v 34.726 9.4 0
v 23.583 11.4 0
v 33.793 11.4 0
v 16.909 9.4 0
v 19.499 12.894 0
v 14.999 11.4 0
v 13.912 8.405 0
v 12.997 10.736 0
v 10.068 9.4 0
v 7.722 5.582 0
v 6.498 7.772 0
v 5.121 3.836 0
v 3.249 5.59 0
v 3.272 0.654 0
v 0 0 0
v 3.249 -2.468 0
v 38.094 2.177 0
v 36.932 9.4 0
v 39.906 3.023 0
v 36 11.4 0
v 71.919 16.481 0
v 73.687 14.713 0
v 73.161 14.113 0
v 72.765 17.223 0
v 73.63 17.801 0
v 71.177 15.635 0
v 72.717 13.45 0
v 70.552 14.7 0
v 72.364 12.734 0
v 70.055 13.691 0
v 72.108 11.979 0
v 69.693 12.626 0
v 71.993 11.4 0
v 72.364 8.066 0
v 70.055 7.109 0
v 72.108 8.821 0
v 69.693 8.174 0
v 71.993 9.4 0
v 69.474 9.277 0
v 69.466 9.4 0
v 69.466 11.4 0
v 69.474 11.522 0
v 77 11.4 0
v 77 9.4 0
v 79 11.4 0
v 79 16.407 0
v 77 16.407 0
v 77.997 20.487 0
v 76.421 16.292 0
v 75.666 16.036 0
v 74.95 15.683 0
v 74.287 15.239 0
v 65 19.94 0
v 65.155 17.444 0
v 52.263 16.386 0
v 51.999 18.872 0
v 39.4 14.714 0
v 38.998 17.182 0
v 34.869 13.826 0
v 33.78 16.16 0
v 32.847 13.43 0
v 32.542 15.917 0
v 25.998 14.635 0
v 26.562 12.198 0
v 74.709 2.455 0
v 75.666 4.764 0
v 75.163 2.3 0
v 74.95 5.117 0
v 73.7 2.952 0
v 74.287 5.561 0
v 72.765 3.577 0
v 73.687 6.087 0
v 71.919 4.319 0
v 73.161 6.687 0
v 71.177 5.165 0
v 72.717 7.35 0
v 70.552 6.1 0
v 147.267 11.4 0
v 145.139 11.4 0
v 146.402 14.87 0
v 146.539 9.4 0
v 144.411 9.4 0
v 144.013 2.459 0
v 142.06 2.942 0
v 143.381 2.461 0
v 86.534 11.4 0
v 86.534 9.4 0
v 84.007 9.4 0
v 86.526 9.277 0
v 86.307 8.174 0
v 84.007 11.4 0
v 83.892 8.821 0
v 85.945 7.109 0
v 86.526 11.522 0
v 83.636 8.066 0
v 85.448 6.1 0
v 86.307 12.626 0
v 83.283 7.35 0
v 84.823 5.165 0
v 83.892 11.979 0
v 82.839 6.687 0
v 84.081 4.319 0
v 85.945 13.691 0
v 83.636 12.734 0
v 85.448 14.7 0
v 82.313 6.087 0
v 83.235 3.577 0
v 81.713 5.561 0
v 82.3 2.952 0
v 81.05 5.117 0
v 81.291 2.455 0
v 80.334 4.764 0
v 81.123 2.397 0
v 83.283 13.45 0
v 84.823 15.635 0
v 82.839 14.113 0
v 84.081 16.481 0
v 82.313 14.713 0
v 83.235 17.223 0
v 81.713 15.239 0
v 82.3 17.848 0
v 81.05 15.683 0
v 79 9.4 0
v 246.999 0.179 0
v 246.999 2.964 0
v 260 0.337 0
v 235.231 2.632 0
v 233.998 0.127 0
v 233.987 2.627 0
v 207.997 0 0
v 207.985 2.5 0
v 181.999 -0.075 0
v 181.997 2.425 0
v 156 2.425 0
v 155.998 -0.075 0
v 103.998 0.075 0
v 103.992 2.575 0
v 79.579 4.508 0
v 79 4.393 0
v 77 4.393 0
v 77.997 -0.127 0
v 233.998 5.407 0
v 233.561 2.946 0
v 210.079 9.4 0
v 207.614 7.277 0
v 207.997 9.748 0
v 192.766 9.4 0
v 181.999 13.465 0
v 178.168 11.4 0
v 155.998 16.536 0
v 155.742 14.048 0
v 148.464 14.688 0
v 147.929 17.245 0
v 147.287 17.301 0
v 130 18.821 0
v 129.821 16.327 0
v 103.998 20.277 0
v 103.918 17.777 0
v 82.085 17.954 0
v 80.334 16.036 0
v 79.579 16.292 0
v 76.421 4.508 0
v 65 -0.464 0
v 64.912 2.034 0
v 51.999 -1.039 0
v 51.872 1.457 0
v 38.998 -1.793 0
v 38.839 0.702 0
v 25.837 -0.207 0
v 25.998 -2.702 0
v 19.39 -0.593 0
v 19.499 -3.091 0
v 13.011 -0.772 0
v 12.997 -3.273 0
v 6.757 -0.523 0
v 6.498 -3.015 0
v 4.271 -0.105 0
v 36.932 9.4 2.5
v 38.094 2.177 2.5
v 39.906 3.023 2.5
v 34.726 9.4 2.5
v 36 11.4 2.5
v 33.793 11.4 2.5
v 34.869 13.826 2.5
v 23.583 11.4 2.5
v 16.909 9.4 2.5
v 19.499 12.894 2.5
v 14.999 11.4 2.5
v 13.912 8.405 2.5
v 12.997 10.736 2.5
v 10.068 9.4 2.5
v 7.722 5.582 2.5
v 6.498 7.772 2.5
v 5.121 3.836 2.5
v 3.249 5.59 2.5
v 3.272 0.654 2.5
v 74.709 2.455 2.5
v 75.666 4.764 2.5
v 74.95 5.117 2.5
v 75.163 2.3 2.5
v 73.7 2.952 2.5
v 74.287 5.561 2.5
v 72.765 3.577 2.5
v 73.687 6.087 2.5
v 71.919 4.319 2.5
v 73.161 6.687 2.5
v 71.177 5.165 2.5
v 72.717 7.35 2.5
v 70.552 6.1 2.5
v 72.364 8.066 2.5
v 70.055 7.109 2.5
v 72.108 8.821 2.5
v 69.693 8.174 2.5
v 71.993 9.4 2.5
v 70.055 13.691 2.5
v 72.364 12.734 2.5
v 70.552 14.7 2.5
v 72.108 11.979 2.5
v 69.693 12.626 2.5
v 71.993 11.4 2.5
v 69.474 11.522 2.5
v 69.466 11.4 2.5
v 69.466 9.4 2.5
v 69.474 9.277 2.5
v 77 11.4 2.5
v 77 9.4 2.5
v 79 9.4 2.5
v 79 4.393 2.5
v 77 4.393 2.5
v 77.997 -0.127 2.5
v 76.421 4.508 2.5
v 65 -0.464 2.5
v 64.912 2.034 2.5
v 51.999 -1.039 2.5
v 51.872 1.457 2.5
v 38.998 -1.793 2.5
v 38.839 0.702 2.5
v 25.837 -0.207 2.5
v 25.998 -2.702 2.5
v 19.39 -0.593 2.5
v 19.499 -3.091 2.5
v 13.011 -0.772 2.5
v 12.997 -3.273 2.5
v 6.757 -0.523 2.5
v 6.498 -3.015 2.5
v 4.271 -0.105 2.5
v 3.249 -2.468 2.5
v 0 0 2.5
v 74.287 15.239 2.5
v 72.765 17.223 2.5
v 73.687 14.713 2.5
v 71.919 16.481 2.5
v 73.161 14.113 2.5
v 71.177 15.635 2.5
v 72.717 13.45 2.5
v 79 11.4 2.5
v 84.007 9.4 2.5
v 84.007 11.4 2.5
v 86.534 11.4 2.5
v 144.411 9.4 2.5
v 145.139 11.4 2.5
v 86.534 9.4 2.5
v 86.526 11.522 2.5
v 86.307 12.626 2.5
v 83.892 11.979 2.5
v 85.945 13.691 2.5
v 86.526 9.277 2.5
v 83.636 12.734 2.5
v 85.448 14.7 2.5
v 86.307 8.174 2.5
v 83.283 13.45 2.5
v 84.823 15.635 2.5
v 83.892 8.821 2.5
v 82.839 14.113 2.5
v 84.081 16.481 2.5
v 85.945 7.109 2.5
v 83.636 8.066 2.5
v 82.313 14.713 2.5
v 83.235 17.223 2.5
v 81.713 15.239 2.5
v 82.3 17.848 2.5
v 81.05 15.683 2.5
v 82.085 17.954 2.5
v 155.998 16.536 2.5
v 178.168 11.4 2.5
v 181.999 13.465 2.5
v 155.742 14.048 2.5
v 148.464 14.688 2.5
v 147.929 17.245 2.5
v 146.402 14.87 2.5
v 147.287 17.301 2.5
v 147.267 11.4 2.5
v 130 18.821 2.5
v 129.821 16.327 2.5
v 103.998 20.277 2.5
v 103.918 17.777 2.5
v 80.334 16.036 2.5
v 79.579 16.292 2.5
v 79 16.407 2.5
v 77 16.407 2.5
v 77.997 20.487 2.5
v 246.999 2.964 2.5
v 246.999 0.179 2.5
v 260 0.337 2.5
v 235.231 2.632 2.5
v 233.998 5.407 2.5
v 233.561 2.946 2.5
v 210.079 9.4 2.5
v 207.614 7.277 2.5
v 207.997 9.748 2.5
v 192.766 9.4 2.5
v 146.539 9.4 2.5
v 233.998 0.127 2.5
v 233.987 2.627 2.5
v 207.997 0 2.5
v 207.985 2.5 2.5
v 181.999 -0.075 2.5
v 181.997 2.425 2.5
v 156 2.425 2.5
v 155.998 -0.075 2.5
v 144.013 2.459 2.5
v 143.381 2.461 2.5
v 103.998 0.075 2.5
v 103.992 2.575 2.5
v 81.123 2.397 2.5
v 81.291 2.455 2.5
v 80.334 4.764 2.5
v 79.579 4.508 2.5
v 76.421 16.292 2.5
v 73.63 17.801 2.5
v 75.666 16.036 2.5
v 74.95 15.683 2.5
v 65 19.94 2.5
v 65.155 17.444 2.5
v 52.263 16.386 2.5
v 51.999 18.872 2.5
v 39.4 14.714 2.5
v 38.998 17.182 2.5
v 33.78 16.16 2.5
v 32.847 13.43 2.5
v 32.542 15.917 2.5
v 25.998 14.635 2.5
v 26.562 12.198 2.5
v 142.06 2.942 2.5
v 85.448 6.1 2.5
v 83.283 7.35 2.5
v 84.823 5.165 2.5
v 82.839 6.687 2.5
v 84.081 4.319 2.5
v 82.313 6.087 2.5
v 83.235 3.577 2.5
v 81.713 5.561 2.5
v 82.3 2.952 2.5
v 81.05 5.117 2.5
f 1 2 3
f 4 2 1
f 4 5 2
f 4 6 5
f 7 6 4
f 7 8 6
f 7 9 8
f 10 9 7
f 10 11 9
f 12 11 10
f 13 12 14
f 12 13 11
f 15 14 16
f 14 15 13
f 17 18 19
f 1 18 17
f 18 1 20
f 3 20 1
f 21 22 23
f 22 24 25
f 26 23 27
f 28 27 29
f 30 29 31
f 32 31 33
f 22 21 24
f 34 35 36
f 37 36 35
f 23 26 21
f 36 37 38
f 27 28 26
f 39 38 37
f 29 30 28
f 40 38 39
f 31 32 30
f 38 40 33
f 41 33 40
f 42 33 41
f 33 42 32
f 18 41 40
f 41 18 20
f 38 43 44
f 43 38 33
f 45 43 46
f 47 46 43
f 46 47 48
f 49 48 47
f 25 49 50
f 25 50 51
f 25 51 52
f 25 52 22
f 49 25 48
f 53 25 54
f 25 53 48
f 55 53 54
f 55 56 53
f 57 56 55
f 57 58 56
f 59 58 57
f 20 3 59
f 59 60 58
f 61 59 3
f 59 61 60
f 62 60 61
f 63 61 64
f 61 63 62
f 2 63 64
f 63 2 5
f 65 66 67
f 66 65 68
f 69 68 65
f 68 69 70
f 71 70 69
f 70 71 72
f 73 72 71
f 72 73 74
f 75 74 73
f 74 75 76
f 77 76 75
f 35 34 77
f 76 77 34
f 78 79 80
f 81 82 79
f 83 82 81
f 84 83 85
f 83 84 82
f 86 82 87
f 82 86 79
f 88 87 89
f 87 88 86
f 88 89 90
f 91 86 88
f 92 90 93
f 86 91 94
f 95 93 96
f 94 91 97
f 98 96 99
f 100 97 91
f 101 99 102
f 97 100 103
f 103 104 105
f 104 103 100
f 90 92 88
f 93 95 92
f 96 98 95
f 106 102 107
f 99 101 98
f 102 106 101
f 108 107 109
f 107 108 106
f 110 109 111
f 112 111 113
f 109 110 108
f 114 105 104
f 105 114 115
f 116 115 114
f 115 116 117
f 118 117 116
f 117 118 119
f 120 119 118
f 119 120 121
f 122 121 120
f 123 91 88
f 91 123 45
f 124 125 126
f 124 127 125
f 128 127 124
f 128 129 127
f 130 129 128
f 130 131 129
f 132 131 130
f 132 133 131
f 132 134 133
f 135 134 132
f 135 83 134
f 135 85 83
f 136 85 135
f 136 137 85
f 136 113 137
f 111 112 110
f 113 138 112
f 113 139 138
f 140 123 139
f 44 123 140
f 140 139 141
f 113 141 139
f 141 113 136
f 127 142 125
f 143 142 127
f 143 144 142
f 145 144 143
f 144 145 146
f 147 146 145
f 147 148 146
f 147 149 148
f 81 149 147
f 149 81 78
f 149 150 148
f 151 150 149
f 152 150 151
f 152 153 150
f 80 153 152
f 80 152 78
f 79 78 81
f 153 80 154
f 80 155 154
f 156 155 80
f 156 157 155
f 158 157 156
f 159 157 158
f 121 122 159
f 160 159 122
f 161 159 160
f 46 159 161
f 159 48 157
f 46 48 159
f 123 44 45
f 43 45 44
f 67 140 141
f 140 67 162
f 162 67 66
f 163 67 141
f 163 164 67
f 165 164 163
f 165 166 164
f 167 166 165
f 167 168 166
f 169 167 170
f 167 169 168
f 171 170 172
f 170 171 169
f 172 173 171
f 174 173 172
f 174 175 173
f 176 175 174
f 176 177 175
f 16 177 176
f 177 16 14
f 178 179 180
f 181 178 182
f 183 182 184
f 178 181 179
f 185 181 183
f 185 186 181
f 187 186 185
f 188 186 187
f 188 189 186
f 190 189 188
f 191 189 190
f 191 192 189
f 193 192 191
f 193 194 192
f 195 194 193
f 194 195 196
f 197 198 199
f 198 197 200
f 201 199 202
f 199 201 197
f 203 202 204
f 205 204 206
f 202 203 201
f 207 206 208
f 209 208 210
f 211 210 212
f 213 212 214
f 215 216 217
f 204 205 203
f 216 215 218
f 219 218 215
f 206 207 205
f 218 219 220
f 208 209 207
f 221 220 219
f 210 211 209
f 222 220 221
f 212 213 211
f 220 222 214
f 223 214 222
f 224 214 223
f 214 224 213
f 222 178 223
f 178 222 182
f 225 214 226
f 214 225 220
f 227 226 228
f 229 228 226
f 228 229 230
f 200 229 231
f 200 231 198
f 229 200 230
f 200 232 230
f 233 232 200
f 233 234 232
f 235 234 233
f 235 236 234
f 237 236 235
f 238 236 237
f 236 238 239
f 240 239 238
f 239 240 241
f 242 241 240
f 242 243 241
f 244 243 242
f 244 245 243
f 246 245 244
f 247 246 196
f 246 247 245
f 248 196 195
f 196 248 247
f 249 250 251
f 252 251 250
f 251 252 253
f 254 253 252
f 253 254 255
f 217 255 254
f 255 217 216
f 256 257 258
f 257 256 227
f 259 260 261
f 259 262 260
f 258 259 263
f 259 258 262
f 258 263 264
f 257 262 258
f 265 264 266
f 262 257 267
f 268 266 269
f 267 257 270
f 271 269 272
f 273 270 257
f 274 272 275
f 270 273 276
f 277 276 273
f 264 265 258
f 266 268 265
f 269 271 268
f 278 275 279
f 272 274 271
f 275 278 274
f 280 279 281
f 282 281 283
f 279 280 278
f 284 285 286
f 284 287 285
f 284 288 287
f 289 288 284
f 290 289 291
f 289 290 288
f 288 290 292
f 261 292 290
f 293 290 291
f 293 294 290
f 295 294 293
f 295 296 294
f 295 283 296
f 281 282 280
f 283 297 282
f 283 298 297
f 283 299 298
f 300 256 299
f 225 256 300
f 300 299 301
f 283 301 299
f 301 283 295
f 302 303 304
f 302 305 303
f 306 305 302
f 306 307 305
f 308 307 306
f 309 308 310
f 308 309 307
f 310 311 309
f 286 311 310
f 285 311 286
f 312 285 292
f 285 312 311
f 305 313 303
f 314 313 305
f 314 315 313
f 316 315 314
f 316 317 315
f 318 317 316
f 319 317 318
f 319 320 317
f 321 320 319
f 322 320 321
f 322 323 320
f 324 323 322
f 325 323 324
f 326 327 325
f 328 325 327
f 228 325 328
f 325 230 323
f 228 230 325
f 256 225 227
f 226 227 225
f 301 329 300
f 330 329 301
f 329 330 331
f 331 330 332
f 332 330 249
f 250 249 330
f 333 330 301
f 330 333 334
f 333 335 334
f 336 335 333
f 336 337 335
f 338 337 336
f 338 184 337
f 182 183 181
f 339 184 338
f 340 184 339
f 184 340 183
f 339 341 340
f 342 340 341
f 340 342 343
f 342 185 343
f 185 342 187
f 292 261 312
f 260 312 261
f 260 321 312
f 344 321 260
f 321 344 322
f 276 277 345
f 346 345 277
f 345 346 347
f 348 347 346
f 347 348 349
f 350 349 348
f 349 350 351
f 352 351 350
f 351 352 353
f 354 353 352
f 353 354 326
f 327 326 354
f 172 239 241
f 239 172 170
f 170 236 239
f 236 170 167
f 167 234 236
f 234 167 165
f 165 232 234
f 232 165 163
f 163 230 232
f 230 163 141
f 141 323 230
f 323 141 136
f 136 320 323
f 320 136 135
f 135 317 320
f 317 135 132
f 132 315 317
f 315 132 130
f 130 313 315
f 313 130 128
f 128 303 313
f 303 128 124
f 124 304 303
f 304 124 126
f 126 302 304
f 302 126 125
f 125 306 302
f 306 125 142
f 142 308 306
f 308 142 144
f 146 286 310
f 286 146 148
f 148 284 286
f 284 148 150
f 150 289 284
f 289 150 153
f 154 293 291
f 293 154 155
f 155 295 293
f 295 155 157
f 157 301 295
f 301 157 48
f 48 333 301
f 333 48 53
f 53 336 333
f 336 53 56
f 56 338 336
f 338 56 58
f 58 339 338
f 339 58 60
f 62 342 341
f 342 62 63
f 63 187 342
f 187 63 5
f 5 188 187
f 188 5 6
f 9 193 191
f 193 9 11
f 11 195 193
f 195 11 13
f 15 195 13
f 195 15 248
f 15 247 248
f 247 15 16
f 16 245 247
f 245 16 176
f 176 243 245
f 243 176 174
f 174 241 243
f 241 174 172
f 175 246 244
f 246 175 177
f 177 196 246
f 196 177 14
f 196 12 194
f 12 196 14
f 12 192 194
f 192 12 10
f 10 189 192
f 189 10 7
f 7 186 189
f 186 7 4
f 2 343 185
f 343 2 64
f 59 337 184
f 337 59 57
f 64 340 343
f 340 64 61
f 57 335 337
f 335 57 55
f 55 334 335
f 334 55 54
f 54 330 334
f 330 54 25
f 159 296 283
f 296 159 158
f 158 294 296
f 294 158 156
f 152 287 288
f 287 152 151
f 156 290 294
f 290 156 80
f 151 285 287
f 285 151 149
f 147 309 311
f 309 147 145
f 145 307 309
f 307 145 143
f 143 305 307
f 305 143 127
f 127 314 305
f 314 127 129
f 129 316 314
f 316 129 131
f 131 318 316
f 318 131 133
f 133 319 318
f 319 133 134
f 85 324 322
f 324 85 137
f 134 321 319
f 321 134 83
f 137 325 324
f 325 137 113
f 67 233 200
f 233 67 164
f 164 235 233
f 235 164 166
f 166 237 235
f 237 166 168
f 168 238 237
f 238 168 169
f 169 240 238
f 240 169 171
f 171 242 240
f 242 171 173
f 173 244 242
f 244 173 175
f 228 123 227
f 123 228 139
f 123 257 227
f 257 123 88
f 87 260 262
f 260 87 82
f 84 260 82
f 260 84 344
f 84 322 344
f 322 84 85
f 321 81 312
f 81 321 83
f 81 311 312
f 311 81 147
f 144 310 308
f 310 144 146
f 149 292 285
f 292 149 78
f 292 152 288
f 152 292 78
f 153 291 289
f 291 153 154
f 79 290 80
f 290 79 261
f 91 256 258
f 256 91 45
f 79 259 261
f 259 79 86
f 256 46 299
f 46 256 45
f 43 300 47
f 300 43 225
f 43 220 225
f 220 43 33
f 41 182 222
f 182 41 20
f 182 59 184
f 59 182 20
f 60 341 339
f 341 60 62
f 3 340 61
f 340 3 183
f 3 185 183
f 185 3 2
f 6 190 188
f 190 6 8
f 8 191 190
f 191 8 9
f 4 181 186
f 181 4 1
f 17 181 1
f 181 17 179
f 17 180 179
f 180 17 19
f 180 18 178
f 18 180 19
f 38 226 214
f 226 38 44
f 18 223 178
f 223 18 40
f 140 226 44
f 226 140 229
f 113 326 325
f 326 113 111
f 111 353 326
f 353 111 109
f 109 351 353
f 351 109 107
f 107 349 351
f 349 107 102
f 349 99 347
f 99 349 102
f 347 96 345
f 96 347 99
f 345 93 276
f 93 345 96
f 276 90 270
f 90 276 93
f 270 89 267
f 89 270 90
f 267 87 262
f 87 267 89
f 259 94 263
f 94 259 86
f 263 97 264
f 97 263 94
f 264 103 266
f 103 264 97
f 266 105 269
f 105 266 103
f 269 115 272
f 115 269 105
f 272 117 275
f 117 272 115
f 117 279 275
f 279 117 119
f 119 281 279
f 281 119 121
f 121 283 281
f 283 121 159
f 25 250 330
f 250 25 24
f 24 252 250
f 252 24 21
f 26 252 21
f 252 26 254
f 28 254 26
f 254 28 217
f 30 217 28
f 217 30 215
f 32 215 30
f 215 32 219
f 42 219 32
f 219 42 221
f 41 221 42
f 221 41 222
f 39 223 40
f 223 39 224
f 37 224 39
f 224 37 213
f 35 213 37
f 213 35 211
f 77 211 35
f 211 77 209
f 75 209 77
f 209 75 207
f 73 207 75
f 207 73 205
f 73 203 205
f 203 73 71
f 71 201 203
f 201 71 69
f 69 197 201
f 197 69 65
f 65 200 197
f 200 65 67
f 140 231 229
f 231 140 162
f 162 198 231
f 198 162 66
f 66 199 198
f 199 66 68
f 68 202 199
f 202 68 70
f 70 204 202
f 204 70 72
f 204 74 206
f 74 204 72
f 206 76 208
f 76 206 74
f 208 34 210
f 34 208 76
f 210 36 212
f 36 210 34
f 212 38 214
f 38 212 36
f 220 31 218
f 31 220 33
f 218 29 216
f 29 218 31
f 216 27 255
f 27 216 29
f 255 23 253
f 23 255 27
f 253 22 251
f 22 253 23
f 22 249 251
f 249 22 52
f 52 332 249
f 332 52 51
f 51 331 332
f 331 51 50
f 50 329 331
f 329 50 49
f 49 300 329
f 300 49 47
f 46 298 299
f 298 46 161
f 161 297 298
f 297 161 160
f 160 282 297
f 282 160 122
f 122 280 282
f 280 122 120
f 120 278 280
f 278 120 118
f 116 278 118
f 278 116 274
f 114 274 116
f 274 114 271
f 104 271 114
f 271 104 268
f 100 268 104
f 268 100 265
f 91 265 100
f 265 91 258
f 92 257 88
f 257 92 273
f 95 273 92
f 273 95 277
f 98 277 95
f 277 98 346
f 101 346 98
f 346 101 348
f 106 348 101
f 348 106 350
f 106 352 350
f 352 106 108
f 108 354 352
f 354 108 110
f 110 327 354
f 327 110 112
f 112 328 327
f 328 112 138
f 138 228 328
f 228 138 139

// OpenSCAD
// file: ../../lib/profiles.scad
// Knihovna leteckych profilu pro RC letadlo
// Vsechny rozmery v milimetrech

// Clark-Y profil (zjednoduseny) - pro kridlo
// Vraci 2D polygon profilu normalizovany na hloubku 1
function clark_y_upper() = [
    [1.000, 0.0013],
    [0.950, 0.0114],
    [0.900, 0.0208],
    [0.800, 0.0375],
    [0.700, 0.0518],
    [0.600, 0.0636],
    [0.500, 0.0724],
    [0.400, 0.0780],
    [0.300, 0.0788],
    [0.250, 0.0767],
    [0.200, 0.0726],
    [0.150, 0.0661],
    [0.100, 0.0563],
    [0.075, 0.0496],
    [0.050, 0.0413],
    [0.025, 0.0299],
    [0.0125,0.0215],
    [0.000, 0.0000]
];

function clark_y_lower() = [
    [0.000, 0.0000],
    [0.0125,-0.0095],
    [0.025, -0.0116],
    [0.050, -0.0126],
    [0.075, -0.0119],
    [0.100, -0.0104],
    [0.150, -0.0069],
    [0.200, -0.0040],
    [0.250, -0.0018],
    [0.300, -0.0005],
    [0.400, 0.0003],
    [0.500, 0.0000],
    [0.600, -0.0003],
    [0.700, -0.0003],
    [0.800, 0.0000],
    [0.900, 0.0005],
    [0.950, 0.0007],
    [1.000, 0.0013]
];

function clark_y_points() = concat(clark_y_upper(), clark_y_lower());

module clark_y_profile(chord) {
    pts = concat(clark_y_upper(), clark_y_lower());
    scale([chord, chord, 1])
        polygon([for (p = pts) [p[0], p[1]]]);
}

// NACA 0009 symetricky profil - pro ocasni plochy
function naca0009_half() = [
    [0.000, 0.0000],
    [0.0125, 0.0112],
    [0.025, 0.0155],
    [0.050, 0.0212],
    [0.075, 0.0253],
    [0.100, 0.0283],
    [0.150, 0.0326],
    [0.200, 0.0350],
    [0.250, 0.0361],
    [0.300, 0.0362],
    [0.400, 0.0341],
    [0.500, 0.0298],
    [0.600, 0.0241],
    [0.700, 0.0177],
    [0.800, 0.0112],
    [0.900, 0.0053],
    [0.950, 0.0027],
    [1.000, 0.0005]
];

module naca0009_profile(chord) {
    upper = naca0009_half();
    lower = [for (i = [len(upper)-1:-1:0]) [upper[i][0], -upper[i][1]]];
    pts = concat(upper, [for (i = [1:len(lower)-1]) lower[i]]);
    scale([chord, chord, 1])
        polygon([for (p = pts) [p[0], p[1]]]);
}

// Ovalny prurezu trupu
module oval_profile(width, height) {
    scale([width/2, height/2])
        circle(r=1, $fn=64);
}

// Zaobleny obdelnik
module rounded_rect(w, h, r) {
    offset(r=r)
        square([w - 2*r, h - 2*r], center=true);
}
// main file
// Zebro stredni - prostredni zebro kridla
// Clark-Y profil, hloubka 260mm
// Material: PET-G, 20% vypln, 3 perimetry

use <../../lib/profiles.scad>;

$fn = 48;

hloubka = 260;
tl_zebra = 2.5;
tl_stena = 2.5;
nosnik_prumer = 12.2;
pozice_nosnik = 0.30;

module zebro_stredni() {
    linear_extrude(tl_zebra)
        difference() {
            clark_y_profile(hloubka);
            offset(delta=-tl_stena)
                clark_y_profile(hloubka);
            // Nosnik
            translate([hloubka * pozice_nosnik, hloubka * 0.04])
                circle(d=nosnik_prumer);
        }

    // Vzpery
    linear_extrude(tl_zebra)
        intersection() {
            clark_y_profile(hloubka);
            union() {
                translate([hloubka * pozice_nosnik - 1, -5])
                    square([2, hloubka * 0.10]);
                translate([hloubka * 0.15, hloubka * 0.01])
                    rotate(25)
                        translate([-1, 0])
                            square([2, hloubka * 0.07]);
                translate([hloubka * 0.55, hloubka * 0.01])
                    rotate(-20)
                        translate([-1, 0])
                            square([2, hloubka * 0.06]);
                translate([0, hloubka * 0.04 - 1])
                    square([hloubka, 2]);
            }
        }

    // Limec nosnikku
    linear_extrude(tl_zebra)
        translate([hloubka * pozice_nosnik, hloubka * 0.04])
            difference() {
                circle(d=nosnik_prumer + 5);
                circle(d=nosnik_prumer);
            }
}

zebro_stredni();
